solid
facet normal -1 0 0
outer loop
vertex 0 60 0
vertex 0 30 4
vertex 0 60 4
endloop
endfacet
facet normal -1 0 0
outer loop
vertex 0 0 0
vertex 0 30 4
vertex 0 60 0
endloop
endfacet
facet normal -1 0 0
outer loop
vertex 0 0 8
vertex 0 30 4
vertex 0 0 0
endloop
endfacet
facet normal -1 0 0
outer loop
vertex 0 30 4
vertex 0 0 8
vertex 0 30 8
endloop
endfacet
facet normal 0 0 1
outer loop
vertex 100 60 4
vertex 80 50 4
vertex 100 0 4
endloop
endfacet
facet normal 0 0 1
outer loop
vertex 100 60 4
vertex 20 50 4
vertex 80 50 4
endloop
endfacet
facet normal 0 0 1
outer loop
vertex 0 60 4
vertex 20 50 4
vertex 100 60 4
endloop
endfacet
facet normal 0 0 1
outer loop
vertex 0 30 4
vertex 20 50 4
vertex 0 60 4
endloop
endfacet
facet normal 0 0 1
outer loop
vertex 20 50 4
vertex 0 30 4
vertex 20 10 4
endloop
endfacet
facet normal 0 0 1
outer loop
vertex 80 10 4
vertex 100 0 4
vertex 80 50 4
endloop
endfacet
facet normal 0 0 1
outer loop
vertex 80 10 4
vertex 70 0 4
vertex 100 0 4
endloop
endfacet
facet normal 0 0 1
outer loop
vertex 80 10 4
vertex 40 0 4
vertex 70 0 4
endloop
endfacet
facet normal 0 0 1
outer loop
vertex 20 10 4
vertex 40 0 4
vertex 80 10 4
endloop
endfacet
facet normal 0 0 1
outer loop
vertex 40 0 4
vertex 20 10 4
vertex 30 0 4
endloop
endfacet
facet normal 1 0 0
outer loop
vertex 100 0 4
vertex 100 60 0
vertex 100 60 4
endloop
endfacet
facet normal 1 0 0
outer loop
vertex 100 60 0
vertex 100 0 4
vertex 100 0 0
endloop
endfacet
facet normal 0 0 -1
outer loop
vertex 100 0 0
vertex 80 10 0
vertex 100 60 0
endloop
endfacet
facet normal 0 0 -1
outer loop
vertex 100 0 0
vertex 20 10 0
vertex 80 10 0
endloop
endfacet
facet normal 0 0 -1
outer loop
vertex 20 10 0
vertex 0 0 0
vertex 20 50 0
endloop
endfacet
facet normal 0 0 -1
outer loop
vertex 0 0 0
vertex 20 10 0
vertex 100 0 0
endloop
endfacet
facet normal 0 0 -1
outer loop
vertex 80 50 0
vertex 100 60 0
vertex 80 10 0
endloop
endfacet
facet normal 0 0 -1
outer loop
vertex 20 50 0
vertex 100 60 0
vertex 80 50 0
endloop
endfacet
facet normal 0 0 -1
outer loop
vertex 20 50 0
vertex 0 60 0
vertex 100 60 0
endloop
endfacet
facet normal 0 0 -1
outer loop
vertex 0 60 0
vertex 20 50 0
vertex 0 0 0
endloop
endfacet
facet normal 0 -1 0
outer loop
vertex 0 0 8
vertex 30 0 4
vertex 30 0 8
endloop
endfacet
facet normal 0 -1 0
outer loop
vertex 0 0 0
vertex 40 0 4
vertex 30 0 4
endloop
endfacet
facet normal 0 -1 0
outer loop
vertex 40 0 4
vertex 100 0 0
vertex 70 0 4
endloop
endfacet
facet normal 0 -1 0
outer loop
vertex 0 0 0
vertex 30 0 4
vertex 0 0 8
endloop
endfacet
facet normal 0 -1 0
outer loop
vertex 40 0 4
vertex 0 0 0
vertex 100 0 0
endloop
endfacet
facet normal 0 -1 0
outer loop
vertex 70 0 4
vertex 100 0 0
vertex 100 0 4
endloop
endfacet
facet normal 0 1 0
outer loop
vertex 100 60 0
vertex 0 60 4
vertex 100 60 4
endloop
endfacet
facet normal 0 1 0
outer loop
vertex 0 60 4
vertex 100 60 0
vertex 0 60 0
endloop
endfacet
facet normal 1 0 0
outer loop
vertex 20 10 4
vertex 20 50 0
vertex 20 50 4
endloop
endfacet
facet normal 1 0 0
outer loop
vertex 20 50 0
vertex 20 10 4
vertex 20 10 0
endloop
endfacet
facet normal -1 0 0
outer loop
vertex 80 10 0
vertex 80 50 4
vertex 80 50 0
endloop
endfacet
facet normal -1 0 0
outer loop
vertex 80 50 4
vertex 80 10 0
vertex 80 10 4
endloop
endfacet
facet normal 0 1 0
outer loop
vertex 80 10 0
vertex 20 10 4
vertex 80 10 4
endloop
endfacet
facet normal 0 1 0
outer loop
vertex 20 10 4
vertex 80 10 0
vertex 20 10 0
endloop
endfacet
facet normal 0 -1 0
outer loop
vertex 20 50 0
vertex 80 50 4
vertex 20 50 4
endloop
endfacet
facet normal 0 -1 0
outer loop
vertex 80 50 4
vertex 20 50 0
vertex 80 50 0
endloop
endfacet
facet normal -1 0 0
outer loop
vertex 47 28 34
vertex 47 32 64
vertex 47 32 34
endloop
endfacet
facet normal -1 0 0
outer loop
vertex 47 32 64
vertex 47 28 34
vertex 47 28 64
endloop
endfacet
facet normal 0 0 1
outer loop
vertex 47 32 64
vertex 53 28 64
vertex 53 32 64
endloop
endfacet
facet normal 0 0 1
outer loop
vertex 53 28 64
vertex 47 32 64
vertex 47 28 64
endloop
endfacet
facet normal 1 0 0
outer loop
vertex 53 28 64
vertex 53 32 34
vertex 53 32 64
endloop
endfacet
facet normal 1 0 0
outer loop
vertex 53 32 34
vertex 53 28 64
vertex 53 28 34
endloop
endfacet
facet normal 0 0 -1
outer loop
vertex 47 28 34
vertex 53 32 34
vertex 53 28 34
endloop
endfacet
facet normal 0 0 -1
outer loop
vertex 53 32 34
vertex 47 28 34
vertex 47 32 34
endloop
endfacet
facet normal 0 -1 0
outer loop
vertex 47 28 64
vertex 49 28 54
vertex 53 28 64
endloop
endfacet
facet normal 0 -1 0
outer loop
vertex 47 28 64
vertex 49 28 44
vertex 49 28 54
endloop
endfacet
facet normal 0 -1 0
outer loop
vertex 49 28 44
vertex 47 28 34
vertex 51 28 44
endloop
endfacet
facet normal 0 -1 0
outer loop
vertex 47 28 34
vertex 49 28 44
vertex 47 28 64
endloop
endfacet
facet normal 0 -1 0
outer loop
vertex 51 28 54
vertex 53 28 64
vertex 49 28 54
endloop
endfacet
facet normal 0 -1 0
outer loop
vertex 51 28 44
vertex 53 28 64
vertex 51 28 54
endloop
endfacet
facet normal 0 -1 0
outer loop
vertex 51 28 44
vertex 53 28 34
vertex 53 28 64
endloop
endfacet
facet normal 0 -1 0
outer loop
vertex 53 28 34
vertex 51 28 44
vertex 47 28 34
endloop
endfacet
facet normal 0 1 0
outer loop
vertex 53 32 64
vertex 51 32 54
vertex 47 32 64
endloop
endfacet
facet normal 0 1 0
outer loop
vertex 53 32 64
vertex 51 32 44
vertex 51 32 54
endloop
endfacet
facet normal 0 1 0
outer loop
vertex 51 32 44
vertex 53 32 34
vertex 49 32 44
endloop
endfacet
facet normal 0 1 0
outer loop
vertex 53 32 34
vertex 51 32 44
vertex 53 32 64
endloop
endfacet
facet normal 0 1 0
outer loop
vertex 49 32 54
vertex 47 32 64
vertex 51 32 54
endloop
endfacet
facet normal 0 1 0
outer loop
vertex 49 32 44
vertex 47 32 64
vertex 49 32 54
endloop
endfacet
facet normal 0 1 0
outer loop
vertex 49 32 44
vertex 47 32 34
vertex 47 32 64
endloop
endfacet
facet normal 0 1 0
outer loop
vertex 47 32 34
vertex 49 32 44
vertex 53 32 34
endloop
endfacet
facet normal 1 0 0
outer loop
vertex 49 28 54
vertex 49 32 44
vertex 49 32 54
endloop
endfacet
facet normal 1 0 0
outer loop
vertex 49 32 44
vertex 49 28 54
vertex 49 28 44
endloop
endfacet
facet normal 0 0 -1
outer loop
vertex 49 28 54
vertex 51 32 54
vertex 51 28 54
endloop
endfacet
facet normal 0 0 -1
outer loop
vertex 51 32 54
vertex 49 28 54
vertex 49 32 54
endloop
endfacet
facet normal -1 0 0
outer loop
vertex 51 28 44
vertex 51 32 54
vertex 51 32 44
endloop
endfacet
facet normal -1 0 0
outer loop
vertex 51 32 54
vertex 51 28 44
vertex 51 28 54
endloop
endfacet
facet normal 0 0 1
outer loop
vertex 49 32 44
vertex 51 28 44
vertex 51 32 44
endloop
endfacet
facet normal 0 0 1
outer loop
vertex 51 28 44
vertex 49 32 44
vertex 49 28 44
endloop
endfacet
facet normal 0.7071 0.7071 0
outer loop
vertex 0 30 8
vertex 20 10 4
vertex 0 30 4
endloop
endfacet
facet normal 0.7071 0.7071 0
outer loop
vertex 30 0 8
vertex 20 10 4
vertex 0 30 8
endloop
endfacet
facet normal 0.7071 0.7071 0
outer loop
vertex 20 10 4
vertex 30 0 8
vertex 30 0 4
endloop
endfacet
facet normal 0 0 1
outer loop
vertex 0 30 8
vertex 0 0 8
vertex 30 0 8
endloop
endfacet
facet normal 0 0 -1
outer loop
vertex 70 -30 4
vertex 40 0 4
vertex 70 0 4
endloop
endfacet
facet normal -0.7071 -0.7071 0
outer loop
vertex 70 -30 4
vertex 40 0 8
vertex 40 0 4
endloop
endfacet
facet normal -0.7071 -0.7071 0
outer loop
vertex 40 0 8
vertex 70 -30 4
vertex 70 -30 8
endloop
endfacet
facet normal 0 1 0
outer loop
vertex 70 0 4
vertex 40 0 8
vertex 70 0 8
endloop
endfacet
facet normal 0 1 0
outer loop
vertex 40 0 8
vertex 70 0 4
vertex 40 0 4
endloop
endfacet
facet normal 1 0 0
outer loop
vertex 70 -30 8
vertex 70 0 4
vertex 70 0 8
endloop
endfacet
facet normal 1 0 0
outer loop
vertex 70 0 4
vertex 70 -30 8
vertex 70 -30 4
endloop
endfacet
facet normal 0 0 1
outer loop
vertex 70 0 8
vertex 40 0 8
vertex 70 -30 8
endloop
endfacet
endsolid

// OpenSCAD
// Parameters
base_length = 100;
base_width = 60;
base_thickness = 4;
cutout_length = 60;
cutout_width = 40;

bracket_height = 30;
bracket_base = 30;
bracket_thickness = 4;

rib_width = 6;
rib_thickness = 4;
rib_height = 30;
rib_slot_height = 10;
rib_slot_width = 2;

// Base Frame
module base_frame() {
    difference() {
        cube([base_length, base_width, base_thickness]);
        translate([(base_length - cutout_length)/2, (base_width - cutout_width)/2, 0])
            cube([cutout_length, cutout_width, base_thickness + 1]);
    }
}

// Sloped Support Bracket
module sloped_support_bracket(mirrorX = false) {
    translate([mirrorX ? base_length - bracket_base : 0, 0, base_thickness])
        rotate([0, 0, mirrorX ? 180 : 0])
            linear_extrude(height = bracket_thickness)
                polygon(points=[[0,0], [bracket_base,0], [0,bracket_height]]);
}

// Vertical Support Rib
module vertical_support_rib() {
    translate([(base_length - rib_width)/2, (base_width - rib_thickness)/2, base_thickness + bracket_height])
        difference() {
            cube([rib_width, rib_thickness, rib_height]);
            translate([(rib_width - rib_slot_width)/2, 0, (rib_height - rib_slot_height)/2])
                cube([rib_slot_width, rib_thickness + 1, rib_slot_height]);
        }
}

// Assembly
module assembly() {
    base_frame();
    sloped_support_bracket(false);
    sloped_support_bracket(true);
    vertical_support_rib();
}

assembly();
